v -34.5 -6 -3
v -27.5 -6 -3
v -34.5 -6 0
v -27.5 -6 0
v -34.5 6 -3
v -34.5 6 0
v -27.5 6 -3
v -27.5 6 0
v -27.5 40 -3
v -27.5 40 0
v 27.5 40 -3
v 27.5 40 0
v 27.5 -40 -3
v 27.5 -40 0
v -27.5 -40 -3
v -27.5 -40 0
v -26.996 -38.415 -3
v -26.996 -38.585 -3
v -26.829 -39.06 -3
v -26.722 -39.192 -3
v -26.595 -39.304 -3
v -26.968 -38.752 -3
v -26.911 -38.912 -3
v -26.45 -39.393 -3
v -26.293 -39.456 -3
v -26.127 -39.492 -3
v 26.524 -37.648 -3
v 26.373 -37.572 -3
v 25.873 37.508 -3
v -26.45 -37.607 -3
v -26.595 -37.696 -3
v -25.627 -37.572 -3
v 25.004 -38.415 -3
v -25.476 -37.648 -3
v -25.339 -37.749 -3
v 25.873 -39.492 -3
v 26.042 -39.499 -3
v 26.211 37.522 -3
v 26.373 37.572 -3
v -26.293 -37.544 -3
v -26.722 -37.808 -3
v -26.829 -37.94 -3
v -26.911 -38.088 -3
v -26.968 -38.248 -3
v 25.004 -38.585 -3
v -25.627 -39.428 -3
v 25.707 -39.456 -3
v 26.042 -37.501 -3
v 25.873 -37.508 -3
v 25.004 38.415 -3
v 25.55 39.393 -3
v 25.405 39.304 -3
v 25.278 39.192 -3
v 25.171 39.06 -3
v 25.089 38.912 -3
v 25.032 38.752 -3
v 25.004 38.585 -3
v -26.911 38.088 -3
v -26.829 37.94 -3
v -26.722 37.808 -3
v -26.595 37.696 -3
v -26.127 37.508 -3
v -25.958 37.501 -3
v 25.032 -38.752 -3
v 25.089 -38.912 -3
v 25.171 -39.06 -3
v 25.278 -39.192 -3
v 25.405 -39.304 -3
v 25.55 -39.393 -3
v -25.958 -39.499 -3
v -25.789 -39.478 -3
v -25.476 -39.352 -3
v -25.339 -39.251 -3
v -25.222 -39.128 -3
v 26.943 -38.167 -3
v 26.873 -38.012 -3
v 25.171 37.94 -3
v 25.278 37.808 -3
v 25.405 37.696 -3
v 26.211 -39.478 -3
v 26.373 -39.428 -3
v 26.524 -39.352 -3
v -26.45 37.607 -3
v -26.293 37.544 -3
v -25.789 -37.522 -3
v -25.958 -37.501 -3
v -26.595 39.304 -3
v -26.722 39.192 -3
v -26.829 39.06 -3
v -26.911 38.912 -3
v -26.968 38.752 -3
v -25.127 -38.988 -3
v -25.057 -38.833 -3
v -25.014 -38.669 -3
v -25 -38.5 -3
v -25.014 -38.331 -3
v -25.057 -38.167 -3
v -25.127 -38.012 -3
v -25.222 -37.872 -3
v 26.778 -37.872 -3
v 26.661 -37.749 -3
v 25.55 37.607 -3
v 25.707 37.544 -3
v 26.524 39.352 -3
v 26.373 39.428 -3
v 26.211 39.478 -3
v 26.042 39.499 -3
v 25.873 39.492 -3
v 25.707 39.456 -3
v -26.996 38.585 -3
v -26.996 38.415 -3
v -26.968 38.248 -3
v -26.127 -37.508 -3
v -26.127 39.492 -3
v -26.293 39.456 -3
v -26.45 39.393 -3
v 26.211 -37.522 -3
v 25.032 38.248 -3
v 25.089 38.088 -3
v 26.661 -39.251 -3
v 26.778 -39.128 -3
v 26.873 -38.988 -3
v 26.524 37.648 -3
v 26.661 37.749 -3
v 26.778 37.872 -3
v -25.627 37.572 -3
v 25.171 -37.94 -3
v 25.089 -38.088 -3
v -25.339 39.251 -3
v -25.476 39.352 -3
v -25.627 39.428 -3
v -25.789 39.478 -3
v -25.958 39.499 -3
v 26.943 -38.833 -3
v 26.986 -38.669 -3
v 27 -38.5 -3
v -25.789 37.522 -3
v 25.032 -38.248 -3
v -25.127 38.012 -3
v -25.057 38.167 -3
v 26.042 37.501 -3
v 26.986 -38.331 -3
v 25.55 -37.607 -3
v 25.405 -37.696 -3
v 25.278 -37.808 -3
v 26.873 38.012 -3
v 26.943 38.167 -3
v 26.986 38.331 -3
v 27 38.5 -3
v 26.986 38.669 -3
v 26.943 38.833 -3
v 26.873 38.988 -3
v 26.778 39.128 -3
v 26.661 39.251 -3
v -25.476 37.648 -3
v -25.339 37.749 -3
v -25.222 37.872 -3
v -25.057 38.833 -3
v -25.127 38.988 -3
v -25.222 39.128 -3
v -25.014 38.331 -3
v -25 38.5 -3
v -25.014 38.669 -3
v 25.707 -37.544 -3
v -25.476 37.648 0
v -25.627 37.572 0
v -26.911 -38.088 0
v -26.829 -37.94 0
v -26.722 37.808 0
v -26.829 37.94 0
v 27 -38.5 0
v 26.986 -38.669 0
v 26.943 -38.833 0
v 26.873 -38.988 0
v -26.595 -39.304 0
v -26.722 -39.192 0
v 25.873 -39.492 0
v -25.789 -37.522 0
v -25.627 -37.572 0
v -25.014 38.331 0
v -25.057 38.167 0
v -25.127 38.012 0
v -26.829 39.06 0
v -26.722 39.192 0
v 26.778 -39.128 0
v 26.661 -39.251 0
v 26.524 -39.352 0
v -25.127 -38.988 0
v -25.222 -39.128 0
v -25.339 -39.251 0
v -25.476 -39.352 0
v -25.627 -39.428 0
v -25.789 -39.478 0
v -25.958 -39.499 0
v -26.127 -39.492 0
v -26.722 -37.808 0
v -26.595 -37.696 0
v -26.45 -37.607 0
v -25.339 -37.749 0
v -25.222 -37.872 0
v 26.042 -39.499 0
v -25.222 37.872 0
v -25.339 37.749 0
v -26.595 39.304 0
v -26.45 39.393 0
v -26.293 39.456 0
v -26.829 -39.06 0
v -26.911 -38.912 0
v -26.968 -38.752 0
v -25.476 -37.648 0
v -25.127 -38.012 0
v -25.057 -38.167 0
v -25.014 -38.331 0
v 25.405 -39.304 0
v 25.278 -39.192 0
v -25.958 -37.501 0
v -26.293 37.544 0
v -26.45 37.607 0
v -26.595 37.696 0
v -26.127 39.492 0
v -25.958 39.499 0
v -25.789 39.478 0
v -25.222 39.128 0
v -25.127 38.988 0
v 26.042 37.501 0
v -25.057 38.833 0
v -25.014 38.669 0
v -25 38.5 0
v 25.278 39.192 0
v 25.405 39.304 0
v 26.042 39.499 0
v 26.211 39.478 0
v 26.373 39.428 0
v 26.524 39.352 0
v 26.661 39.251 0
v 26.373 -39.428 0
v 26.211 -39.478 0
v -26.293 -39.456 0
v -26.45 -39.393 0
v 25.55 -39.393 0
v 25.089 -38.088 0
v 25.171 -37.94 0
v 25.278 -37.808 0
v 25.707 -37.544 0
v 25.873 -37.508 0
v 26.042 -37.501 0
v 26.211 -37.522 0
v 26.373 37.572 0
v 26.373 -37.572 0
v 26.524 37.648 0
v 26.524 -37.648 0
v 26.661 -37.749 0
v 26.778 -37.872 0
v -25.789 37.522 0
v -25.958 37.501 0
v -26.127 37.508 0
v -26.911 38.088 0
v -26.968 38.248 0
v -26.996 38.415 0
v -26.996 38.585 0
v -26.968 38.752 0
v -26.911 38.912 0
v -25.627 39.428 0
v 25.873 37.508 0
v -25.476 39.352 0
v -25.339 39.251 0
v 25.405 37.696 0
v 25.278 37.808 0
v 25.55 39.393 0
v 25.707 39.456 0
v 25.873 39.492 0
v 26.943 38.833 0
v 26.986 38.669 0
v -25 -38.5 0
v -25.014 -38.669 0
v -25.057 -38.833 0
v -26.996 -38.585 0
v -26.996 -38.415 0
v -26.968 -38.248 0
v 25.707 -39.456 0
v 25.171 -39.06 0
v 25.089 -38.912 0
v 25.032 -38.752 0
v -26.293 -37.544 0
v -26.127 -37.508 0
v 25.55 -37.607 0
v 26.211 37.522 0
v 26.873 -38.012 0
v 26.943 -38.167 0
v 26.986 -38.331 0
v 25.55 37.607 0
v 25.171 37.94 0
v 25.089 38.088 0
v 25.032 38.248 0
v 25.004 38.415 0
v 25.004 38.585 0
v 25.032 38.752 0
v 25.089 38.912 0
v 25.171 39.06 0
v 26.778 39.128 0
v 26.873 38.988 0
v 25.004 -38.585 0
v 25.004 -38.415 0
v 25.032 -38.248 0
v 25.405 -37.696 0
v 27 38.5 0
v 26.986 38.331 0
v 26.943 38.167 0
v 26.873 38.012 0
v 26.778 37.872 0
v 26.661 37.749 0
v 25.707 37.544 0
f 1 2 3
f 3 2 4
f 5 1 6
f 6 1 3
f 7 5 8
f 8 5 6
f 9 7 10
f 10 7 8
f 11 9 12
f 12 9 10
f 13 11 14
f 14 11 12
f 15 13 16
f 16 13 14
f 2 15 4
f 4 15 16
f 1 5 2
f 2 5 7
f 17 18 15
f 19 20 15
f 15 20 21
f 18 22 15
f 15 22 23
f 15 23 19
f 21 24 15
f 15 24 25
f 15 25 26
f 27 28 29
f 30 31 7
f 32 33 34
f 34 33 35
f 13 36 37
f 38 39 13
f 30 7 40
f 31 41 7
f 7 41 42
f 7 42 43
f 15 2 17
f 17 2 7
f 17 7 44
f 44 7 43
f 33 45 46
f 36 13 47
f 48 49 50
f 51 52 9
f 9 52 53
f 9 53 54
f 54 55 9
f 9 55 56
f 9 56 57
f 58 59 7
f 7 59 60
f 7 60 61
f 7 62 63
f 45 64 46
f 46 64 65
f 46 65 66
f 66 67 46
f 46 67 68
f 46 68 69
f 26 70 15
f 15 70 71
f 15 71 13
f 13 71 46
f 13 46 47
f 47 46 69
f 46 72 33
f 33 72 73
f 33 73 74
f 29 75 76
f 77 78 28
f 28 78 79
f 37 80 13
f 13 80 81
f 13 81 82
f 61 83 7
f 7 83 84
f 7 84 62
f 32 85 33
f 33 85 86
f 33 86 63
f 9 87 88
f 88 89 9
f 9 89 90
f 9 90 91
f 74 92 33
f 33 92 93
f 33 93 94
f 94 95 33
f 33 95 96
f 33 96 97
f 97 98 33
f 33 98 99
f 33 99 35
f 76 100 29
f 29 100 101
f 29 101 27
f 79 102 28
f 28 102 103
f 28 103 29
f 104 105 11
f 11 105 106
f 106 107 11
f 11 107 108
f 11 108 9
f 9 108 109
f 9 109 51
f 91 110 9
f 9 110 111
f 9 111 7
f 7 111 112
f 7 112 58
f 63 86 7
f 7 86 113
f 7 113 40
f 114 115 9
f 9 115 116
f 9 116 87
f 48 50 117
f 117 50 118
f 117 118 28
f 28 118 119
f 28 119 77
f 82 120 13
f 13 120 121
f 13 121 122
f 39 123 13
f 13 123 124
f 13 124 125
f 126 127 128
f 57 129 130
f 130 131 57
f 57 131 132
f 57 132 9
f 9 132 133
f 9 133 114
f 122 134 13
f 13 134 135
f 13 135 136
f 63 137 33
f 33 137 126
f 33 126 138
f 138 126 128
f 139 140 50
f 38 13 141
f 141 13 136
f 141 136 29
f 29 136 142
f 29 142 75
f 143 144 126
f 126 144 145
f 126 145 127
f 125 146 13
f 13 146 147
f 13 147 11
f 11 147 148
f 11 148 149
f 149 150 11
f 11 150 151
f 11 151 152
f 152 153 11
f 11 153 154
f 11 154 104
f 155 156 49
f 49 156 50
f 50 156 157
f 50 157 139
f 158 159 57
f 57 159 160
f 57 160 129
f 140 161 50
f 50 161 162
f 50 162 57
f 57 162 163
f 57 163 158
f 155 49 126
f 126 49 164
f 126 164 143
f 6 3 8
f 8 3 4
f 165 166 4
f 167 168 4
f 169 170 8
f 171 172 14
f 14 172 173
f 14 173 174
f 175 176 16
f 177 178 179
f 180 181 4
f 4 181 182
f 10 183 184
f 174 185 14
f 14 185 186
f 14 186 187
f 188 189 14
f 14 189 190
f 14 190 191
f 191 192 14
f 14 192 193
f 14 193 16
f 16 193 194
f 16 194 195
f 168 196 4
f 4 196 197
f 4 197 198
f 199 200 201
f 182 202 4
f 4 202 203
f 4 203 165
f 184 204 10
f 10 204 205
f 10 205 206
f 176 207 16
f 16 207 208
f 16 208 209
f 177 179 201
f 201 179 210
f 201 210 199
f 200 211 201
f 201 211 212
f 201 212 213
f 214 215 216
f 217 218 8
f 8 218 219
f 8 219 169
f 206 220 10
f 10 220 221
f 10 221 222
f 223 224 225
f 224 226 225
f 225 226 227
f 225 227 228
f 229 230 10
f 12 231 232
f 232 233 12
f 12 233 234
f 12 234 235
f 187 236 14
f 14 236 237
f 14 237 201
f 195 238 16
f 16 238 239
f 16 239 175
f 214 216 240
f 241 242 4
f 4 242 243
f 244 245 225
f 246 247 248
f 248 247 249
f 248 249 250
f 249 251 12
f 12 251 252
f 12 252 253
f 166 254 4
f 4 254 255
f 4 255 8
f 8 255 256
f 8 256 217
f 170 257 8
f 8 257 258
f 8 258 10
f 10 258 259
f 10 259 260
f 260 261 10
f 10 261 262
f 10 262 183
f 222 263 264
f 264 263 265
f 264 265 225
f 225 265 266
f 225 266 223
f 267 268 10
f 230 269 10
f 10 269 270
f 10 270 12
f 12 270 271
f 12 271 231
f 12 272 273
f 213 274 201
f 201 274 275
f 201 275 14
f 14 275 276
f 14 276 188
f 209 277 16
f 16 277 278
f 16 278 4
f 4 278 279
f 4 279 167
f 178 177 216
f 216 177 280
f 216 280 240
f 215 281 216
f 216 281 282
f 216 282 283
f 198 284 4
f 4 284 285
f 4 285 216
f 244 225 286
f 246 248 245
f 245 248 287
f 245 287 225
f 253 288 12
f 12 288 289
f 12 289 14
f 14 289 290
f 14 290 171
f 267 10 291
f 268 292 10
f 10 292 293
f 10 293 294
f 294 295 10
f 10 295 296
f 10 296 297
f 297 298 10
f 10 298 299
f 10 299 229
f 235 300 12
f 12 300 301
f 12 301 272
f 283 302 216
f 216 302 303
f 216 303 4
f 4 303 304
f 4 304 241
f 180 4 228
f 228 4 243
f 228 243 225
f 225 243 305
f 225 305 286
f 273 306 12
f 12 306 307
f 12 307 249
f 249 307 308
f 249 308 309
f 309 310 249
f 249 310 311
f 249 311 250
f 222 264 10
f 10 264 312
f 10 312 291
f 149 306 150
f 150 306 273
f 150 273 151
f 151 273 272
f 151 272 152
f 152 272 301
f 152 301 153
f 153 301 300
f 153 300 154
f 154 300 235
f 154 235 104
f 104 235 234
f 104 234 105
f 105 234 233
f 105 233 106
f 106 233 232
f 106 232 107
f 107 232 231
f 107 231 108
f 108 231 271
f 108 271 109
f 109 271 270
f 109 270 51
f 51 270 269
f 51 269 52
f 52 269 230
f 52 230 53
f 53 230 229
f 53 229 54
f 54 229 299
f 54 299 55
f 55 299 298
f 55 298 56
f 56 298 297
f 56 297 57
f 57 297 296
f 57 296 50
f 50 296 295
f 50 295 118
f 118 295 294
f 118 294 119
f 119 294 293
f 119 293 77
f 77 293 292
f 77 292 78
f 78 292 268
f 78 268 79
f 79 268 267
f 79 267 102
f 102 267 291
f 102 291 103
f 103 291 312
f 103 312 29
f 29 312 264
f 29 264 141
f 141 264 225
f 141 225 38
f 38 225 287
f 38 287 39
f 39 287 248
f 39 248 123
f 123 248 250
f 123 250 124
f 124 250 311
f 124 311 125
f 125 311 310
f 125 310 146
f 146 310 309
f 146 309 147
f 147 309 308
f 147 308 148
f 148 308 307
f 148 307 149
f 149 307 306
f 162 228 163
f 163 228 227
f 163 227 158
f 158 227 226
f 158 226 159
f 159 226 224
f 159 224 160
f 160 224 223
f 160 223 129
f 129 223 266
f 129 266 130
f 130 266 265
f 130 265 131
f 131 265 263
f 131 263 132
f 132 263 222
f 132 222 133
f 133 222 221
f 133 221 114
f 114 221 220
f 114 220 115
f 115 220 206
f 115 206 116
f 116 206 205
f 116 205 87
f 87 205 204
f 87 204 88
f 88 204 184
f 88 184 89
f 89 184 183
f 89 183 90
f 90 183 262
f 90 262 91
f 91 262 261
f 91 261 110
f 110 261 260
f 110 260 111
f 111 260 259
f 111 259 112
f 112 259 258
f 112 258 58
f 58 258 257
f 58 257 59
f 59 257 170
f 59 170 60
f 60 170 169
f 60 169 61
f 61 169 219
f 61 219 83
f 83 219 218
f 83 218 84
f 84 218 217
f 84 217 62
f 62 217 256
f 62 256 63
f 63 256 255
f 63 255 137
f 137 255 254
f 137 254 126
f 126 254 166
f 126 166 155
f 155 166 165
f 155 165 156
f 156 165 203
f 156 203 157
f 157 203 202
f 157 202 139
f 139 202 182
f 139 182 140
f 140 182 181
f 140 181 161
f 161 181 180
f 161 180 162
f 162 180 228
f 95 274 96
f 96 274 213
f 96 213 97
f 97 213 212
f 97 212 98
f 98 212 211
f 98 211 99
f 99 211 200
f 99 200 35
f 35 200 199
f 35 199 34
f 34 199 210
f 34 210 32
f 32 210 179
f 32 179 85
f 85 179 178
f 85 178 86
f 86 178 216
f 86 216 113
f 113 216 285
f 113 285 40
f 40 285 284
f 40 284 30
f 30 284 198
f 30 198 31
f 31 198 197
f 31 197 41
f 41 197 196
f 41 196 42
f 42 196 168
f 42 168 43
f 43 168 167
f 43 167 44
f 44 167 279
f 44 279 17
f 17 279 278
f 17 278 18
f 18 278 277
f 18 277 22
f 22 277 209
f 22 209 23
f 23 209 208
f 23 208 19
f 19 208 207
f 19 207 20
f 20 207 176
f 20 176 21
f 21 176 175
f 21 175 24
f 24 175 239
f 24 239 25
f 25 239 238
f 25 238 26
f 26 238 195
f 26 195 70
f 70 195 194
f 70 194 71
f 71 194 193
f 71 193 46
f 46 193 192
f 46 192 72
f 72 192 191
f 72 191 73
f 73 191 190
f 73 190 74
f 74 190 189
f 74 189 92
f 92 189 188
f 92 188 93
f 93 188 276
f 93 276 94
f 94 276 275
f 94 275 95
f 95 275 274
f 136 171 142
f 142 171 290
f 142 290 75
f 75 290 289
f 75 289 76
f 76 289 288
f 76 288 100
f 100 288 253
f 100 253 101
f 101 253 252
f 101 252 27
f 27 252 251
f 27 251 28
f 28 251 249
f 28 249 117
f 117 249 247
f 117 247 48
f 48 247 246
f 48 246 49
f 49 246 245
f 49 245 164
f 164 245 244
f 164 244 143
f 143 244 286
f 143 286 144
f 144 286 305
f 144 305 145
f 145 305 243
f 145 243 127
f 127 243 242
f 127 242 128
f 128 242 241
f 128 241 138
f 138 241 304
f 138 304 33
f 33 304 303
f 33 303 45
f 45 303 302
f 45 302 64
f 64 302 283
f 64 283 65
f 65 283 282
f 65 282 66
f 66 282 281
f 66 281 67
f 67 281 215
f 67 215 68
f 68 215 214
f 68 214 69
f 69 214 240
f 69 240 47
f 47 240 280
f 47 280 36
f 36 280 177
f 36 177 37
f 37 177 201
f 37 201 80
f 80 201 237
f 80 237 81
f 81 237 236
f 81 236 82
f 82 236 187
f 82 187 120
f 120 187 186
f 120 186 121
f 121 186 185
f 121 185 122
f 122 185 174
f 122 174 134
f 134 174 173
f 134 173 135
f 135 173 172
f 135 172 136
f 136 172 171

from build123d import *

# Parameters (mm, degrees)
BOSS_EXTRUDE1_DEPTH = 3
SKETCH2_R           = 1
CUT_EXTRUDE1_DEPTH  = 56


with BuildPart() as part:
    # Sketch1 → Boss-Extrude1 (new body)
    with BuildSketch(Plane.XY):
        Polygon((-34.5, -6), (-27.5, -6), (-27.5, -40), (27.5, -40), (27.5, 40), (-27.5, 40), (-27.5, 6), (-34.5, 6), align=None)
    extrude(amount=-BOSS_EXTRUDE1_DEPTH)

    # Sketch2 → Cut-Extrude1 (cut)
    with BuildSketch(Plane.XY):
        with Locations((-26, -38.5)):
            Circle(SKETCH2_R)
        with Locations((26, -38.5)):
            Circle(SKETCH2_R)
        with Locations((26, 38.5)):
            Circle(SKETCH2_R)
        with Locations((-26, 38.5)):
            Circle(SKETCH2_R)
    extrude(amount=-CUT_EXTRUDE1_DEPTH, mode=Mode.SUBTRACT)


solid = part.part
